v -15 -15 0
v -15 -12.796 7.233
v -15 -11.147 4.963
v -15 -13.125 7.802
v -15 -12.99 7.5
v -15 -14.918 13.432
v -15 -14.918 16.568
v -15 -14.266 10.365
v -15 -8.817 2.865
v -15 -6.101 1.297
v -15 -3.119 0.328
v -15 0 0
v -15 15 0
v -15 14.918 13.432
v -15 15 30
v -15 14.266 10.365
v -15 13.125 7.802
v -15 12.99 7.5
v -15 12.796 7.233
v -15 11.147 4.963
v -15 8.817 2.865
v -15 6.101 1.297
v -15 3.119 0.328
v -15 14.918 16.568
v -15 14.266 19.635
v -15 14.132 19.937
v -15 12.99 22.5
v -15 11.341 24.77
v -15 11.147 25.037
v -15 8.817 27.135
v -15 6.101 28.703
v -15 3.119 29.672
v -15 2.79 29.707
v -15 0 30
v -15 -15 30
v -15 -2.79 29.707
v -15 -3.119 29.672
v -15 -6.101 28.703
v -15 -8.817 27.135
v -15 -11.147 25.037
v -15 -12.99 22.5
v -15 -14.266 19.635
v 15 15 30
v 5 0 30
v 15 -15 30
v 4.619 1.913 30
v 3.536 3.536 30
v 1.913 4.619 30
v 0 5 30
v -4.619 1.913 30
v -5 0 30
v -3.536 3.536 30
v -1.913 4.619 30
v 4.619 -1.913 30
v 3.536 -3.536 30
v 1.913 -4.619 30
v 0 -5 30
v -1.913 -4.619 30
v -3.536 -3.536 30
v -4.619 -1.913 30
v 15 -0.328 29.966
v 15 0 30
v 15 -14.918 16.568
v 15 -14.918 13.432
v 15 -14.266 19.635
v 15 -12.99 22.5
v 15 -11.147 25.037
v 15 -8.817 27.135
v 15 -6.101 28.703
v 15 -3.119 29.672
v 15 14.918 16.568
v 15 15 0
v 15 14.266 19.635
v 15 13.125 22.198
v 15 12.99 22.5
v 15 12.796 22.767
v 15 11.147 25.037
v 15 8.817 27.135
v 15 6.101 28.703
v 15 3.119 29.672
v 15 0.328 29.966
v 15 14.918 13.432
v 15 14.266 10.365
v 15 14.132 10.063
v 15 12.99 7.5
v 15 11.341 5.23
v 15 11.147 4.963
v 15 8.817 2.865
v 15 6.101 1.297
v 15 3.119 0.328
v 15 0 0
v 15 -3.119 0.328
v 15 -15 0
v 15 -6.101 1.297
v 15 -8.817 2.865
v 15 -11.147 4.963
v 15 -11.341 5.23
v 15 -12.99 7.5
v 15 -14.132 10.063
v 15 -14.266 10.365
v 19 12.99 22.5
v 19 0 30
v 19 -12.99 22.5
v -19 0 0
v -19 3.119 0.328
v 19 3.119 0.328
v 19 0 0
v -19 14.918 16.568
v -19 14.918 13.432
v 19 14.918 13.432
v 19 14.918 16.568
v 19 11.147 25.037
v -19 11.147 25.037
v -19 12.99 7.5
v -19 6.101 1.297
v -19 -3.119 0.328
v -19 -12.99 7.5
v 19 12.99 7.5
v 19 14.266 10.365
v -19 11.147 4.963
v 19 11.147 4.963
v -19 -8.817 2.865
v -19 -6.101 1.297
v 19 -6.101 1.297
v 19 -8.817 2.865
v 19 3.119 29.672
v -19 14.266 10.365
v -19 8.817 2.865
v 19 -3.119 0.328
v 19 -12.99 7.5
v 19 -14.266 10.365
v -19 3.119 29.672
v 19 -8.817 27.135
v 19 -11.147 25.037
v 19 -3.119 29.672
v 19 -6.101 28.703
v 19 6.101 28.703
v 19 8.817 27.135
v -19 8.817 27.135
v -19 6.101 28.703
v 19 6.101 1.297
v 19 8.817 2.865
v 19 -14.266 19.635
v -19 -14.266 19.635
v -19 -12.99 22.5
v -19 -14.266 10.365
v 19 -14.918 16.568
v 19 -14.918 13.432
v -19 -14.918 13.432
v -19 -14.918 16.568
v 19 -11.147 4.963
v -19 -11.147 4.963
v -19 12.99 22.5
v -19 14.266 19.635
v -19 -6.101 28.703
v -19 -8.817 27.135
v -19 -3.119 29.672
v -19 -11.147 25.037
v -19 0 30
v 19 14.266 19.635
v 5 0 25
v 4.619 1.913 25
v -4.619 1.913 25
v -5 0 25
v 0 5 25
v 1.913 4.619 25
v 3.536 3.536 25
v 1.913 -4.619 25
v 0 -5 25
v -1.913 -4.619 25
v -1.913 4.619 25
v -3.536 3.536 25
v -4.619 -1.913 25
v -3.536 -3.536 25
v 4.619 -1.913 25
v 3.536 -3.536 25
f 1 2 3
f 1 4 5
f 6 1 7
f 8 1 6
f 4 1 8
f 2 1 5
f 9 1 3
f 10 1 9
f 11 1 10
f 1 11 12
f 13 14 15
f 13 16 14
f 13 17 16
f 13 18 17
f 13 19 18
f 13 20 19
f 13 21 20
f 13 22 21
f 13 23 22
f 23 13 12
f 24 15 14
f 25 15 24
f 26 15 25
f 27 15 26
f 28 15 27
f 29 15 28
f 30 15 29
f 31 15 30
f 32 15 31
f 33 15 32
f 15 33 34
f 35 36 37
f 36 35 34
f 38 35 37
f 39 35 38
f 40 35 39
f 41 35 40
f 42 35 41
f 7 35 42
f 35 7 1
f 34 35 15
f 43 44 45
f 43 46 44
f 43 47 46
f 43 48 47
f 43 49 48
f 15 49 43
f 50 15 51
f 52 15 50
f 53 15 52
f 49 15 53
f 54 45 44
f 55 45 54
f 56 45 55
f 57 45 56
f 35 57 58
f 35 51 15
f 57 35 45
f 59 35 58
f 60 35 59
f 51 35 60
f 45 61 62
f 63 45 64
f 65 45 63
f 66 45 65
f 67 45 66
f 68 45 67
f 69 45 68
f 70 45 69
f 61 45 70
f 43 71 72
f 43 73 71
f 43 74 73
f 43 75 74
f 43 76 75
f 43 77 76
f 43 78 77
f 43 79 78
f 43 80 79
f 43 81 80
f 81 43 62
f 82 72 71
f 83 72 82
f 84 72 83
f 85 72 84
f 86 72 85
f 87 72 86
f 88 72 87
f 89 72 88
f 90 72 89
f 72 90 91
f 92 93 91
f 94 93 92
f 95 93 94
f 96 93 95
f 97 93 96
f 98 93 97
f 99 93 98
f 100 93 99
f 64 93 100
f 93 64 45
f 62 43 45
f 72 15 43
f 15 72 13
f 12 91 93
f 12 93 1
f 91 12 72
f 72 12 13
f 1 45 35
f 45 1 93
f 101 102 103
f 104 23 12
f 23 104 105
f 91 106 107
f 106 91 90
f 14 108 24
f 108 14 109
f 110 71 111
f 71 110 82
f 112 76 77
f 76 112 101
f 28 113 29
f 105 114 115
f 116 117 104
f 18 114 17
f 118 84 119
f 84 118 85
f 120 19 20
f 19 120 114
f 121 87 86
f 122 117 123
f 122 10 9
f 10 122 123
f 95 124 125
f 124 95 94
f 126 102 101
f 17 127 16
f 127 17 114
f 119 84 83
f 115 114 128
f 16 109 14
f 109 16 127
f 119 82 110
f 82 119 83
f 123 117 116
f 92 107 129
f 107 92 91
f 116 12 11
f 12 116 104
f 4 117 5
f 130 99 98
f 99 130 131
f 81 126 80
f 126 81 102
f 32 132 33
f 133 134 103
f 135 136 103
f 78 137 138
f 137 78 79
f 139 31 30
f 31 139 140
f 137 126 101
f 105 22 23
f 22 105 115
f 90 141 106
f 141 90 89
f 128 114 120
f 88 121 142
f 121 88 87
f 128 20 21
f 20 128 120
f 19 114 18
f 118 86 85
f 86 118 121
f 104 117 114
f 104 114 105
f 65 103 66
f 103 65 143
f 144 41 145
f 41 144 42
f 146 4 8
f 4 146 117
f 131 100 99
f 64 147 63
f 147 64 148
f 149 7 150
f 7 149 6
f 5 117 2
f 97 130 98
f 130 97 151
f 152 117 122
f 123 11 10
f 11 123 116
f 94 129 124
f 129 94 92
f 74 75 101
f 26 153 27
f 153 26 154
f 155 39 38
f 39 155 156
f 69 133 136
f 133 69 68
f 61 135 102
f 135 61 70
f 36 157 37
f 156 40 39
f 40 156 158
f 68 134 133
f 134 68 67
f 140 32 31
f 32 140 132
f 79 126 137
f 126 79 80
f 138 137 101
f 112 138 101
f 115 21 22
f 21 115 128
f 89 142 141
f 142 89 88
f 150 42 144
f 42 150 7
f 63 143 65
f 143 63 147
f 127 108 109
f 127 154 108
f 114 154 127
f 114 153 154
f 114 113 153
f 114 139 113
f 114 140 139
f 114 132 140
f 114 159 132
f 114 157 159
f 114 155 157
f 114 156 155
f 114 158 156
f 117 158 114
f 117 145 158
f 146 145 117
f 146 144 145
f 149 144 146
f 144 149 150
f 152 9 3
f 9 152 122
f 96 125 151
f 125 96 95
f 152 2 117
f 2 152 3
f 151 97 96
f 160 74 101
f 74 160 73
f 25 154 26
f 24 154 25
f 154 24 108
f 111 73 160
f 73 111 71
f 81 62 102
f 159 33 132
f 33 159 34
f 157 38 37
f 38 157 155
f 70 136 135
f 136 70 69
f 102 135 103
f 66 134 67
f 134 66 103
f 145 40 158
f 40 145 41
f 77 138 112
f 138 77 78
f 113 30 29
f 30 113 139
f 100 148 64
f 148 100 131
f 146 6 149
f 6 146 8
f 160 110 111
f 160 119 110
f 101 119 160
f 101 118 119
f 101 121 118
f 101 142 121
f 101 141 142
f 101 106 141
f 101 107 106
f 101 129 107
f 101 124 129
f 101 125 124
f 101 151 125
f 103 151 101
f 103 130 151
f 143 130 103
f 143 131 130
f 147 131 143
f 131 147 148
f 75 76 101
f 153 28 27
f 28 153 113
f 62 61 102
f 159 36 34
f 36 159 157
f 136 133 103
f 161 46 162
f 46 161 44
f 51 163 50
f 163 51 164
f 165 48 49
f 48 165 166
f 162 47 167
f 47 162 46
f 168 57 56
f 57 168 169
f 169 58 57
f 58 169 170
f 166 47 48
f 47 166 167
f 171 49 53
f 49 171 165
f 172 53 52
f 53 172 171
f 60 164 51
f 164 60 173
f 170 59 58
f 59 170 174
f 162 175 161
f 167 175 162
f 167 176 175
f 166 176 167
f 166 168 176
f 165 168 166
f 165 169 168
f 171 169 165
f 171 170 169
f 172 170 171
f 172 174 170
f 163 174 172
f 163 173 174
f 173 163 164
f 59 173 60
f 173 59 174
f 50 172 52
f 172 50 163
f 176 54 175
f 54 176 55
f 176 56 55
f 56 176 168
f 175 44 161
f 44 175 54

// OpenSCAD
cube_size = 30; // [10:Small,20:Medium,30:Large]

hole_diameter = 10; 
hole_radius = hole_diameter/2;

// How deep should the center hole be?
hole_depth = 5; // [0,1,5,50]

show_wheels = "yes"; // [yes,no]

// How thick should the side wheels be?
wheel_thickness = 4; // [1:40]

// ignore this variable!
// foo=1;

// don't turn functions into params!
function BEZ03(u) = pow((1-u), 3);

// ignore variable values
bing = 3+4;
baz = 3 / hole_depth;

difference() {
  union() {
    translate([0, 0, cube_size/2]) cube([cube_size,cube_size,cube_size], center=true);
    if (show_wheels == "yes") {
      translate([0, 0, cube_size/2]) rotate([0, 90, 0]) {
        cylinder(r=cube_size/2, h=cube_size+(wheel_thickness*2), center=true);
      }
    }
  }
  translate([0, 0, cube_size-hole_depth]) cylinder(r=hole_radius, h=hole_depth);
}
        
